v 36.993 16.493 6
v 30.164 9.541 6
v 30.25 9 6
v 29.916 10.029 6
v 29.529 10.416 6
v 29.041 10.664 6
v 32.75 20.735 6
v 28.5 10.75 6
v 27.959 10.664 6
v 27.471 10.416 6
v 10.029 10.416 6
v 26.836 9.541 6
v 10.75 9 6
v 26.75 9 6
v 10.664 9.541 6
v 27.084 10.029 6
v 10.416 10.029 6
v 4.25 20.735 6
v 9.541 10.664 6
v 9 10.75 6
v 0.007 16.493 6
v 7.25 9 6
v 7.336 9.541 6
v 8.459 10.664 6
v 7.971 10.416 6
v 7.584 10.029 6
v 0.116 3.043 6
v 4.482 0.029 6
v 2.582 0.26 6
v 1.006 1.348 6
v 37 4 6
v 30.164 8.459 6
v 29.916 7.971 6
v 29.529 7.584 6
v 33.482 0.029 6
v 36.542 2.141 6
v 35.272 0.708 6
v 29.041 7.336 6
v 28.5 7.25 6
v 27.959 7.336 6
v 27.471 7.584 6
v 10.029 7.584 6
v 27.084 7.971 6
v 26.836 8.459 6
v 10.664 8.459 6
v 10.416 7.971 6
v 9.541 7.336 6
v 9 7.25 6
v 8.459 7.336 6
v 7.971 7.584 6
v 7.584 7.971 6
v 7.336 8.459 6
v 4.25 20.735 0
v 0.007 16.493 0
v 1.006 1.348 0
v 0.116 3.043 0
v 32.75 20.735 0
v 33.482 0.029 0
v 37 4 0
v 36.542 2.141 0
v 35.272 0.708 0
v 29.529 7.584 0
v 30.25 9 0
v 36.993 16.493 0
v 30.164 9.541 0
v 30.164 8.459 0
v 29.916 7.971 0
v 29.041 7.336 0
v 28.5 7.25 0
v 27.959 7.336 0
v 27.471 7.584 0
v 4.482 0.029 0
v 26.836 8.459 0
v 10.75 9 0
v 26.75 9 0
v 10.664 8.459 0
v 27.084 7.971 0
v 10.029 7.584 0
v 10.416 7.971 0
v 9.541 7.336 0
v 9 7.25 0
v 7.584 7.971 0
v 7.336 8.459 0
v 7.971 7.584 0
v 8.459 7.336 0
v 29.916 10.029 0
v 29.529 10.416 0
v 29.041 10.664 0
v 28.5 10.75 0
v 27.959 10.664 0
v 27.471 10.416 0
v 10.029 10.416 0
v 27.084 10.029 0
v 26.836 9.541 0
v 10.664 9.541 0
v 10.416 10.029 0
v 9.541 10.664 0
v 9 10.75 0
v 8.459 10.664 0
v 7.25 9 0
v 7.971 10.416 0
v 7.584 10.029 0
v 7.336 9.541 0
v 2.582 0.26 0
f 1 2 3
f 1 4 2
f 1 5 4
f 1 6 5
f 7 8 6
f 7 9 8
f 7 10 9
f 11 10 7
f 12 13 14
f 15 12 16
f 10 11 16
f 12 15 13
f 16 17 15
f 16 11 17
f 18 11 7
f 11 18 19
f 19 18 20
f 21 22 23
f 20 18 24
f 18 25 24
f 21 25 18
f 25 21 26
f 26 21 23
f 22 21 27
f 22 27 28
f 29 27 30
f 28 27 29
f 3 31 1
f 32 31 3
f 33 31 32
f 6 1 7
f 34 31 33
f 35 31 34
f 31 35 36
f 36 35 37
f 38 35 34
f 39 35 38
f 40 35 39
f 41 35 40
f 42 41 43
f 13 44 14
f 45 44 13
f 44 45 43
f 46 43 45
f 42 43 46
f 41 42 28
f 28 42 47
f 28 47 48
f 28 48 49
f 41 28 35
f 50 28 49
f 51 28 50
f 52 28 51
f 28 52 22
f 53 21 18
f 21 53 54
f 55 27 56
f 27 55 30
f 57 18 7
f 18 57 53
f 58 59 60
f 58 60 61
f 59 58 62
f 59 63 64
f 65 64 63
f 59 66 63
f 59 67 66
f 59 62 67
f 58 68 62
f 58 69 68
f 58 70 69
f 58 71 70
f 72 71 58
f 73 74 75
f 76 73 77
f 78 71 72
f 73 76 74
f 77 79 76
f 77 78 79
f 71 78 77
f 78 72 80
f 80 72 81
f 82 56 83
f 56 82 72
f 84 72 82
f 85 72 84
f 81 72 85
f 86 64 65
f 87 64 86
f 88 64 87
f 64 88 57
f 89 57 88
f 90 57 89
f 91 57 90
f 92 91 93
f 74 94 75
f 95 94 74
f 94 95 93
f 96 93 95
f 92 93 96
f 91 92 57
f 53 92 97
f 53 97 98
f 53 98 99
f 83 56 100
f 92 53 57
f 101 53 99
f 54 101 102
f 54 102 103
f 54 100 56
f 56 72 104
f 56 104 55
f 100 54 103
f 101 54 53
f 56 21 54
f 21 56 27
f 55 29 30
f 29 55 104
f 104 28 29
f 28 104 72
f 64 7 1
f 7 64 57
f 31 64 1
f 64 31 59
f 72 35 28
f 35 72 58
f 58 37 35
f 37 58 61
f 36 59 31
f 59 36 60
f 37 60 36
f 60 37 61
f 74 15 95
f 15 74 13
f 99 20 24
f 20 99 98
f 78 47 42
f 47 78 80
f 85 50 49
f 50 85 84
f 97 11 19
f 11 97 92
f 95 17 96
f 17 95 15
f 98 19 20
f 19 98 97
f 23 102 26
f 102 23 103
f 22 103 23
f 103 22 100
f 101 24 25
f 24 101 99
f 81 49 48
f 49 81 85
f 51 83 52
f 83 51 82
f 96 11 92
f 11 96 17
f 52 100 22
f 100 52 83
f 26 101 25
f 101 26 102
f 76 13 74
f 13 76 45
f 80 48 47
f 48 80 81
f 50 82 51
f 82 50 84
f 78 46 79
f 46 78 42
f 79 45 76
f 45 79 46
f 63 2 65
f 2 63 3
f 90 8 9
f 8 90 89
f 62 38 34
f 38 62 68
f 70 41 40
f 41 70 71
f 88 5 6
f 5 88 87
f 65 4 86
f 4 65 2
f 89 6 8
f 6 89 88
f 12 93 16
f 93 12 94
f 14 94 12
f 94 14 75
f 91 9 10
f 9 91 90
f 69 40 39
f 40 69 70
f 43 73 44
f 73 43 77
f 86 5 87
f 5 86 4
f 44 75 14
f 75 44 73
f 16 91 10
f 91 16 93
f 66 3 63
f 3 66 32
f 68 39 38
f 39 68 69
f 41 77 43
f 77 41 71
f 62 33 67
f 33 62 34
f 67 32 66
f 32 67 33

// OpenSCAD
difference() {
    hull(){
        translate([4,4,0])
            cylinder(6,4,4);
        translate([33, 4, 0])
            cylinder(6,4,4);
        translate([4.25, 12.25, 0])
            rotate([0,0,45])
            cube(6);
        translate([32.75,12.25,0])
            rotate([0,0,45])
            cube(6);
    }
    translate([9,9,-.5])
        cylinder(7,1.75,1.75, $fn=20);
    translate([28.5,9,-.5])
        cylinder(7,1.75,1.75, $fn=20);
}
